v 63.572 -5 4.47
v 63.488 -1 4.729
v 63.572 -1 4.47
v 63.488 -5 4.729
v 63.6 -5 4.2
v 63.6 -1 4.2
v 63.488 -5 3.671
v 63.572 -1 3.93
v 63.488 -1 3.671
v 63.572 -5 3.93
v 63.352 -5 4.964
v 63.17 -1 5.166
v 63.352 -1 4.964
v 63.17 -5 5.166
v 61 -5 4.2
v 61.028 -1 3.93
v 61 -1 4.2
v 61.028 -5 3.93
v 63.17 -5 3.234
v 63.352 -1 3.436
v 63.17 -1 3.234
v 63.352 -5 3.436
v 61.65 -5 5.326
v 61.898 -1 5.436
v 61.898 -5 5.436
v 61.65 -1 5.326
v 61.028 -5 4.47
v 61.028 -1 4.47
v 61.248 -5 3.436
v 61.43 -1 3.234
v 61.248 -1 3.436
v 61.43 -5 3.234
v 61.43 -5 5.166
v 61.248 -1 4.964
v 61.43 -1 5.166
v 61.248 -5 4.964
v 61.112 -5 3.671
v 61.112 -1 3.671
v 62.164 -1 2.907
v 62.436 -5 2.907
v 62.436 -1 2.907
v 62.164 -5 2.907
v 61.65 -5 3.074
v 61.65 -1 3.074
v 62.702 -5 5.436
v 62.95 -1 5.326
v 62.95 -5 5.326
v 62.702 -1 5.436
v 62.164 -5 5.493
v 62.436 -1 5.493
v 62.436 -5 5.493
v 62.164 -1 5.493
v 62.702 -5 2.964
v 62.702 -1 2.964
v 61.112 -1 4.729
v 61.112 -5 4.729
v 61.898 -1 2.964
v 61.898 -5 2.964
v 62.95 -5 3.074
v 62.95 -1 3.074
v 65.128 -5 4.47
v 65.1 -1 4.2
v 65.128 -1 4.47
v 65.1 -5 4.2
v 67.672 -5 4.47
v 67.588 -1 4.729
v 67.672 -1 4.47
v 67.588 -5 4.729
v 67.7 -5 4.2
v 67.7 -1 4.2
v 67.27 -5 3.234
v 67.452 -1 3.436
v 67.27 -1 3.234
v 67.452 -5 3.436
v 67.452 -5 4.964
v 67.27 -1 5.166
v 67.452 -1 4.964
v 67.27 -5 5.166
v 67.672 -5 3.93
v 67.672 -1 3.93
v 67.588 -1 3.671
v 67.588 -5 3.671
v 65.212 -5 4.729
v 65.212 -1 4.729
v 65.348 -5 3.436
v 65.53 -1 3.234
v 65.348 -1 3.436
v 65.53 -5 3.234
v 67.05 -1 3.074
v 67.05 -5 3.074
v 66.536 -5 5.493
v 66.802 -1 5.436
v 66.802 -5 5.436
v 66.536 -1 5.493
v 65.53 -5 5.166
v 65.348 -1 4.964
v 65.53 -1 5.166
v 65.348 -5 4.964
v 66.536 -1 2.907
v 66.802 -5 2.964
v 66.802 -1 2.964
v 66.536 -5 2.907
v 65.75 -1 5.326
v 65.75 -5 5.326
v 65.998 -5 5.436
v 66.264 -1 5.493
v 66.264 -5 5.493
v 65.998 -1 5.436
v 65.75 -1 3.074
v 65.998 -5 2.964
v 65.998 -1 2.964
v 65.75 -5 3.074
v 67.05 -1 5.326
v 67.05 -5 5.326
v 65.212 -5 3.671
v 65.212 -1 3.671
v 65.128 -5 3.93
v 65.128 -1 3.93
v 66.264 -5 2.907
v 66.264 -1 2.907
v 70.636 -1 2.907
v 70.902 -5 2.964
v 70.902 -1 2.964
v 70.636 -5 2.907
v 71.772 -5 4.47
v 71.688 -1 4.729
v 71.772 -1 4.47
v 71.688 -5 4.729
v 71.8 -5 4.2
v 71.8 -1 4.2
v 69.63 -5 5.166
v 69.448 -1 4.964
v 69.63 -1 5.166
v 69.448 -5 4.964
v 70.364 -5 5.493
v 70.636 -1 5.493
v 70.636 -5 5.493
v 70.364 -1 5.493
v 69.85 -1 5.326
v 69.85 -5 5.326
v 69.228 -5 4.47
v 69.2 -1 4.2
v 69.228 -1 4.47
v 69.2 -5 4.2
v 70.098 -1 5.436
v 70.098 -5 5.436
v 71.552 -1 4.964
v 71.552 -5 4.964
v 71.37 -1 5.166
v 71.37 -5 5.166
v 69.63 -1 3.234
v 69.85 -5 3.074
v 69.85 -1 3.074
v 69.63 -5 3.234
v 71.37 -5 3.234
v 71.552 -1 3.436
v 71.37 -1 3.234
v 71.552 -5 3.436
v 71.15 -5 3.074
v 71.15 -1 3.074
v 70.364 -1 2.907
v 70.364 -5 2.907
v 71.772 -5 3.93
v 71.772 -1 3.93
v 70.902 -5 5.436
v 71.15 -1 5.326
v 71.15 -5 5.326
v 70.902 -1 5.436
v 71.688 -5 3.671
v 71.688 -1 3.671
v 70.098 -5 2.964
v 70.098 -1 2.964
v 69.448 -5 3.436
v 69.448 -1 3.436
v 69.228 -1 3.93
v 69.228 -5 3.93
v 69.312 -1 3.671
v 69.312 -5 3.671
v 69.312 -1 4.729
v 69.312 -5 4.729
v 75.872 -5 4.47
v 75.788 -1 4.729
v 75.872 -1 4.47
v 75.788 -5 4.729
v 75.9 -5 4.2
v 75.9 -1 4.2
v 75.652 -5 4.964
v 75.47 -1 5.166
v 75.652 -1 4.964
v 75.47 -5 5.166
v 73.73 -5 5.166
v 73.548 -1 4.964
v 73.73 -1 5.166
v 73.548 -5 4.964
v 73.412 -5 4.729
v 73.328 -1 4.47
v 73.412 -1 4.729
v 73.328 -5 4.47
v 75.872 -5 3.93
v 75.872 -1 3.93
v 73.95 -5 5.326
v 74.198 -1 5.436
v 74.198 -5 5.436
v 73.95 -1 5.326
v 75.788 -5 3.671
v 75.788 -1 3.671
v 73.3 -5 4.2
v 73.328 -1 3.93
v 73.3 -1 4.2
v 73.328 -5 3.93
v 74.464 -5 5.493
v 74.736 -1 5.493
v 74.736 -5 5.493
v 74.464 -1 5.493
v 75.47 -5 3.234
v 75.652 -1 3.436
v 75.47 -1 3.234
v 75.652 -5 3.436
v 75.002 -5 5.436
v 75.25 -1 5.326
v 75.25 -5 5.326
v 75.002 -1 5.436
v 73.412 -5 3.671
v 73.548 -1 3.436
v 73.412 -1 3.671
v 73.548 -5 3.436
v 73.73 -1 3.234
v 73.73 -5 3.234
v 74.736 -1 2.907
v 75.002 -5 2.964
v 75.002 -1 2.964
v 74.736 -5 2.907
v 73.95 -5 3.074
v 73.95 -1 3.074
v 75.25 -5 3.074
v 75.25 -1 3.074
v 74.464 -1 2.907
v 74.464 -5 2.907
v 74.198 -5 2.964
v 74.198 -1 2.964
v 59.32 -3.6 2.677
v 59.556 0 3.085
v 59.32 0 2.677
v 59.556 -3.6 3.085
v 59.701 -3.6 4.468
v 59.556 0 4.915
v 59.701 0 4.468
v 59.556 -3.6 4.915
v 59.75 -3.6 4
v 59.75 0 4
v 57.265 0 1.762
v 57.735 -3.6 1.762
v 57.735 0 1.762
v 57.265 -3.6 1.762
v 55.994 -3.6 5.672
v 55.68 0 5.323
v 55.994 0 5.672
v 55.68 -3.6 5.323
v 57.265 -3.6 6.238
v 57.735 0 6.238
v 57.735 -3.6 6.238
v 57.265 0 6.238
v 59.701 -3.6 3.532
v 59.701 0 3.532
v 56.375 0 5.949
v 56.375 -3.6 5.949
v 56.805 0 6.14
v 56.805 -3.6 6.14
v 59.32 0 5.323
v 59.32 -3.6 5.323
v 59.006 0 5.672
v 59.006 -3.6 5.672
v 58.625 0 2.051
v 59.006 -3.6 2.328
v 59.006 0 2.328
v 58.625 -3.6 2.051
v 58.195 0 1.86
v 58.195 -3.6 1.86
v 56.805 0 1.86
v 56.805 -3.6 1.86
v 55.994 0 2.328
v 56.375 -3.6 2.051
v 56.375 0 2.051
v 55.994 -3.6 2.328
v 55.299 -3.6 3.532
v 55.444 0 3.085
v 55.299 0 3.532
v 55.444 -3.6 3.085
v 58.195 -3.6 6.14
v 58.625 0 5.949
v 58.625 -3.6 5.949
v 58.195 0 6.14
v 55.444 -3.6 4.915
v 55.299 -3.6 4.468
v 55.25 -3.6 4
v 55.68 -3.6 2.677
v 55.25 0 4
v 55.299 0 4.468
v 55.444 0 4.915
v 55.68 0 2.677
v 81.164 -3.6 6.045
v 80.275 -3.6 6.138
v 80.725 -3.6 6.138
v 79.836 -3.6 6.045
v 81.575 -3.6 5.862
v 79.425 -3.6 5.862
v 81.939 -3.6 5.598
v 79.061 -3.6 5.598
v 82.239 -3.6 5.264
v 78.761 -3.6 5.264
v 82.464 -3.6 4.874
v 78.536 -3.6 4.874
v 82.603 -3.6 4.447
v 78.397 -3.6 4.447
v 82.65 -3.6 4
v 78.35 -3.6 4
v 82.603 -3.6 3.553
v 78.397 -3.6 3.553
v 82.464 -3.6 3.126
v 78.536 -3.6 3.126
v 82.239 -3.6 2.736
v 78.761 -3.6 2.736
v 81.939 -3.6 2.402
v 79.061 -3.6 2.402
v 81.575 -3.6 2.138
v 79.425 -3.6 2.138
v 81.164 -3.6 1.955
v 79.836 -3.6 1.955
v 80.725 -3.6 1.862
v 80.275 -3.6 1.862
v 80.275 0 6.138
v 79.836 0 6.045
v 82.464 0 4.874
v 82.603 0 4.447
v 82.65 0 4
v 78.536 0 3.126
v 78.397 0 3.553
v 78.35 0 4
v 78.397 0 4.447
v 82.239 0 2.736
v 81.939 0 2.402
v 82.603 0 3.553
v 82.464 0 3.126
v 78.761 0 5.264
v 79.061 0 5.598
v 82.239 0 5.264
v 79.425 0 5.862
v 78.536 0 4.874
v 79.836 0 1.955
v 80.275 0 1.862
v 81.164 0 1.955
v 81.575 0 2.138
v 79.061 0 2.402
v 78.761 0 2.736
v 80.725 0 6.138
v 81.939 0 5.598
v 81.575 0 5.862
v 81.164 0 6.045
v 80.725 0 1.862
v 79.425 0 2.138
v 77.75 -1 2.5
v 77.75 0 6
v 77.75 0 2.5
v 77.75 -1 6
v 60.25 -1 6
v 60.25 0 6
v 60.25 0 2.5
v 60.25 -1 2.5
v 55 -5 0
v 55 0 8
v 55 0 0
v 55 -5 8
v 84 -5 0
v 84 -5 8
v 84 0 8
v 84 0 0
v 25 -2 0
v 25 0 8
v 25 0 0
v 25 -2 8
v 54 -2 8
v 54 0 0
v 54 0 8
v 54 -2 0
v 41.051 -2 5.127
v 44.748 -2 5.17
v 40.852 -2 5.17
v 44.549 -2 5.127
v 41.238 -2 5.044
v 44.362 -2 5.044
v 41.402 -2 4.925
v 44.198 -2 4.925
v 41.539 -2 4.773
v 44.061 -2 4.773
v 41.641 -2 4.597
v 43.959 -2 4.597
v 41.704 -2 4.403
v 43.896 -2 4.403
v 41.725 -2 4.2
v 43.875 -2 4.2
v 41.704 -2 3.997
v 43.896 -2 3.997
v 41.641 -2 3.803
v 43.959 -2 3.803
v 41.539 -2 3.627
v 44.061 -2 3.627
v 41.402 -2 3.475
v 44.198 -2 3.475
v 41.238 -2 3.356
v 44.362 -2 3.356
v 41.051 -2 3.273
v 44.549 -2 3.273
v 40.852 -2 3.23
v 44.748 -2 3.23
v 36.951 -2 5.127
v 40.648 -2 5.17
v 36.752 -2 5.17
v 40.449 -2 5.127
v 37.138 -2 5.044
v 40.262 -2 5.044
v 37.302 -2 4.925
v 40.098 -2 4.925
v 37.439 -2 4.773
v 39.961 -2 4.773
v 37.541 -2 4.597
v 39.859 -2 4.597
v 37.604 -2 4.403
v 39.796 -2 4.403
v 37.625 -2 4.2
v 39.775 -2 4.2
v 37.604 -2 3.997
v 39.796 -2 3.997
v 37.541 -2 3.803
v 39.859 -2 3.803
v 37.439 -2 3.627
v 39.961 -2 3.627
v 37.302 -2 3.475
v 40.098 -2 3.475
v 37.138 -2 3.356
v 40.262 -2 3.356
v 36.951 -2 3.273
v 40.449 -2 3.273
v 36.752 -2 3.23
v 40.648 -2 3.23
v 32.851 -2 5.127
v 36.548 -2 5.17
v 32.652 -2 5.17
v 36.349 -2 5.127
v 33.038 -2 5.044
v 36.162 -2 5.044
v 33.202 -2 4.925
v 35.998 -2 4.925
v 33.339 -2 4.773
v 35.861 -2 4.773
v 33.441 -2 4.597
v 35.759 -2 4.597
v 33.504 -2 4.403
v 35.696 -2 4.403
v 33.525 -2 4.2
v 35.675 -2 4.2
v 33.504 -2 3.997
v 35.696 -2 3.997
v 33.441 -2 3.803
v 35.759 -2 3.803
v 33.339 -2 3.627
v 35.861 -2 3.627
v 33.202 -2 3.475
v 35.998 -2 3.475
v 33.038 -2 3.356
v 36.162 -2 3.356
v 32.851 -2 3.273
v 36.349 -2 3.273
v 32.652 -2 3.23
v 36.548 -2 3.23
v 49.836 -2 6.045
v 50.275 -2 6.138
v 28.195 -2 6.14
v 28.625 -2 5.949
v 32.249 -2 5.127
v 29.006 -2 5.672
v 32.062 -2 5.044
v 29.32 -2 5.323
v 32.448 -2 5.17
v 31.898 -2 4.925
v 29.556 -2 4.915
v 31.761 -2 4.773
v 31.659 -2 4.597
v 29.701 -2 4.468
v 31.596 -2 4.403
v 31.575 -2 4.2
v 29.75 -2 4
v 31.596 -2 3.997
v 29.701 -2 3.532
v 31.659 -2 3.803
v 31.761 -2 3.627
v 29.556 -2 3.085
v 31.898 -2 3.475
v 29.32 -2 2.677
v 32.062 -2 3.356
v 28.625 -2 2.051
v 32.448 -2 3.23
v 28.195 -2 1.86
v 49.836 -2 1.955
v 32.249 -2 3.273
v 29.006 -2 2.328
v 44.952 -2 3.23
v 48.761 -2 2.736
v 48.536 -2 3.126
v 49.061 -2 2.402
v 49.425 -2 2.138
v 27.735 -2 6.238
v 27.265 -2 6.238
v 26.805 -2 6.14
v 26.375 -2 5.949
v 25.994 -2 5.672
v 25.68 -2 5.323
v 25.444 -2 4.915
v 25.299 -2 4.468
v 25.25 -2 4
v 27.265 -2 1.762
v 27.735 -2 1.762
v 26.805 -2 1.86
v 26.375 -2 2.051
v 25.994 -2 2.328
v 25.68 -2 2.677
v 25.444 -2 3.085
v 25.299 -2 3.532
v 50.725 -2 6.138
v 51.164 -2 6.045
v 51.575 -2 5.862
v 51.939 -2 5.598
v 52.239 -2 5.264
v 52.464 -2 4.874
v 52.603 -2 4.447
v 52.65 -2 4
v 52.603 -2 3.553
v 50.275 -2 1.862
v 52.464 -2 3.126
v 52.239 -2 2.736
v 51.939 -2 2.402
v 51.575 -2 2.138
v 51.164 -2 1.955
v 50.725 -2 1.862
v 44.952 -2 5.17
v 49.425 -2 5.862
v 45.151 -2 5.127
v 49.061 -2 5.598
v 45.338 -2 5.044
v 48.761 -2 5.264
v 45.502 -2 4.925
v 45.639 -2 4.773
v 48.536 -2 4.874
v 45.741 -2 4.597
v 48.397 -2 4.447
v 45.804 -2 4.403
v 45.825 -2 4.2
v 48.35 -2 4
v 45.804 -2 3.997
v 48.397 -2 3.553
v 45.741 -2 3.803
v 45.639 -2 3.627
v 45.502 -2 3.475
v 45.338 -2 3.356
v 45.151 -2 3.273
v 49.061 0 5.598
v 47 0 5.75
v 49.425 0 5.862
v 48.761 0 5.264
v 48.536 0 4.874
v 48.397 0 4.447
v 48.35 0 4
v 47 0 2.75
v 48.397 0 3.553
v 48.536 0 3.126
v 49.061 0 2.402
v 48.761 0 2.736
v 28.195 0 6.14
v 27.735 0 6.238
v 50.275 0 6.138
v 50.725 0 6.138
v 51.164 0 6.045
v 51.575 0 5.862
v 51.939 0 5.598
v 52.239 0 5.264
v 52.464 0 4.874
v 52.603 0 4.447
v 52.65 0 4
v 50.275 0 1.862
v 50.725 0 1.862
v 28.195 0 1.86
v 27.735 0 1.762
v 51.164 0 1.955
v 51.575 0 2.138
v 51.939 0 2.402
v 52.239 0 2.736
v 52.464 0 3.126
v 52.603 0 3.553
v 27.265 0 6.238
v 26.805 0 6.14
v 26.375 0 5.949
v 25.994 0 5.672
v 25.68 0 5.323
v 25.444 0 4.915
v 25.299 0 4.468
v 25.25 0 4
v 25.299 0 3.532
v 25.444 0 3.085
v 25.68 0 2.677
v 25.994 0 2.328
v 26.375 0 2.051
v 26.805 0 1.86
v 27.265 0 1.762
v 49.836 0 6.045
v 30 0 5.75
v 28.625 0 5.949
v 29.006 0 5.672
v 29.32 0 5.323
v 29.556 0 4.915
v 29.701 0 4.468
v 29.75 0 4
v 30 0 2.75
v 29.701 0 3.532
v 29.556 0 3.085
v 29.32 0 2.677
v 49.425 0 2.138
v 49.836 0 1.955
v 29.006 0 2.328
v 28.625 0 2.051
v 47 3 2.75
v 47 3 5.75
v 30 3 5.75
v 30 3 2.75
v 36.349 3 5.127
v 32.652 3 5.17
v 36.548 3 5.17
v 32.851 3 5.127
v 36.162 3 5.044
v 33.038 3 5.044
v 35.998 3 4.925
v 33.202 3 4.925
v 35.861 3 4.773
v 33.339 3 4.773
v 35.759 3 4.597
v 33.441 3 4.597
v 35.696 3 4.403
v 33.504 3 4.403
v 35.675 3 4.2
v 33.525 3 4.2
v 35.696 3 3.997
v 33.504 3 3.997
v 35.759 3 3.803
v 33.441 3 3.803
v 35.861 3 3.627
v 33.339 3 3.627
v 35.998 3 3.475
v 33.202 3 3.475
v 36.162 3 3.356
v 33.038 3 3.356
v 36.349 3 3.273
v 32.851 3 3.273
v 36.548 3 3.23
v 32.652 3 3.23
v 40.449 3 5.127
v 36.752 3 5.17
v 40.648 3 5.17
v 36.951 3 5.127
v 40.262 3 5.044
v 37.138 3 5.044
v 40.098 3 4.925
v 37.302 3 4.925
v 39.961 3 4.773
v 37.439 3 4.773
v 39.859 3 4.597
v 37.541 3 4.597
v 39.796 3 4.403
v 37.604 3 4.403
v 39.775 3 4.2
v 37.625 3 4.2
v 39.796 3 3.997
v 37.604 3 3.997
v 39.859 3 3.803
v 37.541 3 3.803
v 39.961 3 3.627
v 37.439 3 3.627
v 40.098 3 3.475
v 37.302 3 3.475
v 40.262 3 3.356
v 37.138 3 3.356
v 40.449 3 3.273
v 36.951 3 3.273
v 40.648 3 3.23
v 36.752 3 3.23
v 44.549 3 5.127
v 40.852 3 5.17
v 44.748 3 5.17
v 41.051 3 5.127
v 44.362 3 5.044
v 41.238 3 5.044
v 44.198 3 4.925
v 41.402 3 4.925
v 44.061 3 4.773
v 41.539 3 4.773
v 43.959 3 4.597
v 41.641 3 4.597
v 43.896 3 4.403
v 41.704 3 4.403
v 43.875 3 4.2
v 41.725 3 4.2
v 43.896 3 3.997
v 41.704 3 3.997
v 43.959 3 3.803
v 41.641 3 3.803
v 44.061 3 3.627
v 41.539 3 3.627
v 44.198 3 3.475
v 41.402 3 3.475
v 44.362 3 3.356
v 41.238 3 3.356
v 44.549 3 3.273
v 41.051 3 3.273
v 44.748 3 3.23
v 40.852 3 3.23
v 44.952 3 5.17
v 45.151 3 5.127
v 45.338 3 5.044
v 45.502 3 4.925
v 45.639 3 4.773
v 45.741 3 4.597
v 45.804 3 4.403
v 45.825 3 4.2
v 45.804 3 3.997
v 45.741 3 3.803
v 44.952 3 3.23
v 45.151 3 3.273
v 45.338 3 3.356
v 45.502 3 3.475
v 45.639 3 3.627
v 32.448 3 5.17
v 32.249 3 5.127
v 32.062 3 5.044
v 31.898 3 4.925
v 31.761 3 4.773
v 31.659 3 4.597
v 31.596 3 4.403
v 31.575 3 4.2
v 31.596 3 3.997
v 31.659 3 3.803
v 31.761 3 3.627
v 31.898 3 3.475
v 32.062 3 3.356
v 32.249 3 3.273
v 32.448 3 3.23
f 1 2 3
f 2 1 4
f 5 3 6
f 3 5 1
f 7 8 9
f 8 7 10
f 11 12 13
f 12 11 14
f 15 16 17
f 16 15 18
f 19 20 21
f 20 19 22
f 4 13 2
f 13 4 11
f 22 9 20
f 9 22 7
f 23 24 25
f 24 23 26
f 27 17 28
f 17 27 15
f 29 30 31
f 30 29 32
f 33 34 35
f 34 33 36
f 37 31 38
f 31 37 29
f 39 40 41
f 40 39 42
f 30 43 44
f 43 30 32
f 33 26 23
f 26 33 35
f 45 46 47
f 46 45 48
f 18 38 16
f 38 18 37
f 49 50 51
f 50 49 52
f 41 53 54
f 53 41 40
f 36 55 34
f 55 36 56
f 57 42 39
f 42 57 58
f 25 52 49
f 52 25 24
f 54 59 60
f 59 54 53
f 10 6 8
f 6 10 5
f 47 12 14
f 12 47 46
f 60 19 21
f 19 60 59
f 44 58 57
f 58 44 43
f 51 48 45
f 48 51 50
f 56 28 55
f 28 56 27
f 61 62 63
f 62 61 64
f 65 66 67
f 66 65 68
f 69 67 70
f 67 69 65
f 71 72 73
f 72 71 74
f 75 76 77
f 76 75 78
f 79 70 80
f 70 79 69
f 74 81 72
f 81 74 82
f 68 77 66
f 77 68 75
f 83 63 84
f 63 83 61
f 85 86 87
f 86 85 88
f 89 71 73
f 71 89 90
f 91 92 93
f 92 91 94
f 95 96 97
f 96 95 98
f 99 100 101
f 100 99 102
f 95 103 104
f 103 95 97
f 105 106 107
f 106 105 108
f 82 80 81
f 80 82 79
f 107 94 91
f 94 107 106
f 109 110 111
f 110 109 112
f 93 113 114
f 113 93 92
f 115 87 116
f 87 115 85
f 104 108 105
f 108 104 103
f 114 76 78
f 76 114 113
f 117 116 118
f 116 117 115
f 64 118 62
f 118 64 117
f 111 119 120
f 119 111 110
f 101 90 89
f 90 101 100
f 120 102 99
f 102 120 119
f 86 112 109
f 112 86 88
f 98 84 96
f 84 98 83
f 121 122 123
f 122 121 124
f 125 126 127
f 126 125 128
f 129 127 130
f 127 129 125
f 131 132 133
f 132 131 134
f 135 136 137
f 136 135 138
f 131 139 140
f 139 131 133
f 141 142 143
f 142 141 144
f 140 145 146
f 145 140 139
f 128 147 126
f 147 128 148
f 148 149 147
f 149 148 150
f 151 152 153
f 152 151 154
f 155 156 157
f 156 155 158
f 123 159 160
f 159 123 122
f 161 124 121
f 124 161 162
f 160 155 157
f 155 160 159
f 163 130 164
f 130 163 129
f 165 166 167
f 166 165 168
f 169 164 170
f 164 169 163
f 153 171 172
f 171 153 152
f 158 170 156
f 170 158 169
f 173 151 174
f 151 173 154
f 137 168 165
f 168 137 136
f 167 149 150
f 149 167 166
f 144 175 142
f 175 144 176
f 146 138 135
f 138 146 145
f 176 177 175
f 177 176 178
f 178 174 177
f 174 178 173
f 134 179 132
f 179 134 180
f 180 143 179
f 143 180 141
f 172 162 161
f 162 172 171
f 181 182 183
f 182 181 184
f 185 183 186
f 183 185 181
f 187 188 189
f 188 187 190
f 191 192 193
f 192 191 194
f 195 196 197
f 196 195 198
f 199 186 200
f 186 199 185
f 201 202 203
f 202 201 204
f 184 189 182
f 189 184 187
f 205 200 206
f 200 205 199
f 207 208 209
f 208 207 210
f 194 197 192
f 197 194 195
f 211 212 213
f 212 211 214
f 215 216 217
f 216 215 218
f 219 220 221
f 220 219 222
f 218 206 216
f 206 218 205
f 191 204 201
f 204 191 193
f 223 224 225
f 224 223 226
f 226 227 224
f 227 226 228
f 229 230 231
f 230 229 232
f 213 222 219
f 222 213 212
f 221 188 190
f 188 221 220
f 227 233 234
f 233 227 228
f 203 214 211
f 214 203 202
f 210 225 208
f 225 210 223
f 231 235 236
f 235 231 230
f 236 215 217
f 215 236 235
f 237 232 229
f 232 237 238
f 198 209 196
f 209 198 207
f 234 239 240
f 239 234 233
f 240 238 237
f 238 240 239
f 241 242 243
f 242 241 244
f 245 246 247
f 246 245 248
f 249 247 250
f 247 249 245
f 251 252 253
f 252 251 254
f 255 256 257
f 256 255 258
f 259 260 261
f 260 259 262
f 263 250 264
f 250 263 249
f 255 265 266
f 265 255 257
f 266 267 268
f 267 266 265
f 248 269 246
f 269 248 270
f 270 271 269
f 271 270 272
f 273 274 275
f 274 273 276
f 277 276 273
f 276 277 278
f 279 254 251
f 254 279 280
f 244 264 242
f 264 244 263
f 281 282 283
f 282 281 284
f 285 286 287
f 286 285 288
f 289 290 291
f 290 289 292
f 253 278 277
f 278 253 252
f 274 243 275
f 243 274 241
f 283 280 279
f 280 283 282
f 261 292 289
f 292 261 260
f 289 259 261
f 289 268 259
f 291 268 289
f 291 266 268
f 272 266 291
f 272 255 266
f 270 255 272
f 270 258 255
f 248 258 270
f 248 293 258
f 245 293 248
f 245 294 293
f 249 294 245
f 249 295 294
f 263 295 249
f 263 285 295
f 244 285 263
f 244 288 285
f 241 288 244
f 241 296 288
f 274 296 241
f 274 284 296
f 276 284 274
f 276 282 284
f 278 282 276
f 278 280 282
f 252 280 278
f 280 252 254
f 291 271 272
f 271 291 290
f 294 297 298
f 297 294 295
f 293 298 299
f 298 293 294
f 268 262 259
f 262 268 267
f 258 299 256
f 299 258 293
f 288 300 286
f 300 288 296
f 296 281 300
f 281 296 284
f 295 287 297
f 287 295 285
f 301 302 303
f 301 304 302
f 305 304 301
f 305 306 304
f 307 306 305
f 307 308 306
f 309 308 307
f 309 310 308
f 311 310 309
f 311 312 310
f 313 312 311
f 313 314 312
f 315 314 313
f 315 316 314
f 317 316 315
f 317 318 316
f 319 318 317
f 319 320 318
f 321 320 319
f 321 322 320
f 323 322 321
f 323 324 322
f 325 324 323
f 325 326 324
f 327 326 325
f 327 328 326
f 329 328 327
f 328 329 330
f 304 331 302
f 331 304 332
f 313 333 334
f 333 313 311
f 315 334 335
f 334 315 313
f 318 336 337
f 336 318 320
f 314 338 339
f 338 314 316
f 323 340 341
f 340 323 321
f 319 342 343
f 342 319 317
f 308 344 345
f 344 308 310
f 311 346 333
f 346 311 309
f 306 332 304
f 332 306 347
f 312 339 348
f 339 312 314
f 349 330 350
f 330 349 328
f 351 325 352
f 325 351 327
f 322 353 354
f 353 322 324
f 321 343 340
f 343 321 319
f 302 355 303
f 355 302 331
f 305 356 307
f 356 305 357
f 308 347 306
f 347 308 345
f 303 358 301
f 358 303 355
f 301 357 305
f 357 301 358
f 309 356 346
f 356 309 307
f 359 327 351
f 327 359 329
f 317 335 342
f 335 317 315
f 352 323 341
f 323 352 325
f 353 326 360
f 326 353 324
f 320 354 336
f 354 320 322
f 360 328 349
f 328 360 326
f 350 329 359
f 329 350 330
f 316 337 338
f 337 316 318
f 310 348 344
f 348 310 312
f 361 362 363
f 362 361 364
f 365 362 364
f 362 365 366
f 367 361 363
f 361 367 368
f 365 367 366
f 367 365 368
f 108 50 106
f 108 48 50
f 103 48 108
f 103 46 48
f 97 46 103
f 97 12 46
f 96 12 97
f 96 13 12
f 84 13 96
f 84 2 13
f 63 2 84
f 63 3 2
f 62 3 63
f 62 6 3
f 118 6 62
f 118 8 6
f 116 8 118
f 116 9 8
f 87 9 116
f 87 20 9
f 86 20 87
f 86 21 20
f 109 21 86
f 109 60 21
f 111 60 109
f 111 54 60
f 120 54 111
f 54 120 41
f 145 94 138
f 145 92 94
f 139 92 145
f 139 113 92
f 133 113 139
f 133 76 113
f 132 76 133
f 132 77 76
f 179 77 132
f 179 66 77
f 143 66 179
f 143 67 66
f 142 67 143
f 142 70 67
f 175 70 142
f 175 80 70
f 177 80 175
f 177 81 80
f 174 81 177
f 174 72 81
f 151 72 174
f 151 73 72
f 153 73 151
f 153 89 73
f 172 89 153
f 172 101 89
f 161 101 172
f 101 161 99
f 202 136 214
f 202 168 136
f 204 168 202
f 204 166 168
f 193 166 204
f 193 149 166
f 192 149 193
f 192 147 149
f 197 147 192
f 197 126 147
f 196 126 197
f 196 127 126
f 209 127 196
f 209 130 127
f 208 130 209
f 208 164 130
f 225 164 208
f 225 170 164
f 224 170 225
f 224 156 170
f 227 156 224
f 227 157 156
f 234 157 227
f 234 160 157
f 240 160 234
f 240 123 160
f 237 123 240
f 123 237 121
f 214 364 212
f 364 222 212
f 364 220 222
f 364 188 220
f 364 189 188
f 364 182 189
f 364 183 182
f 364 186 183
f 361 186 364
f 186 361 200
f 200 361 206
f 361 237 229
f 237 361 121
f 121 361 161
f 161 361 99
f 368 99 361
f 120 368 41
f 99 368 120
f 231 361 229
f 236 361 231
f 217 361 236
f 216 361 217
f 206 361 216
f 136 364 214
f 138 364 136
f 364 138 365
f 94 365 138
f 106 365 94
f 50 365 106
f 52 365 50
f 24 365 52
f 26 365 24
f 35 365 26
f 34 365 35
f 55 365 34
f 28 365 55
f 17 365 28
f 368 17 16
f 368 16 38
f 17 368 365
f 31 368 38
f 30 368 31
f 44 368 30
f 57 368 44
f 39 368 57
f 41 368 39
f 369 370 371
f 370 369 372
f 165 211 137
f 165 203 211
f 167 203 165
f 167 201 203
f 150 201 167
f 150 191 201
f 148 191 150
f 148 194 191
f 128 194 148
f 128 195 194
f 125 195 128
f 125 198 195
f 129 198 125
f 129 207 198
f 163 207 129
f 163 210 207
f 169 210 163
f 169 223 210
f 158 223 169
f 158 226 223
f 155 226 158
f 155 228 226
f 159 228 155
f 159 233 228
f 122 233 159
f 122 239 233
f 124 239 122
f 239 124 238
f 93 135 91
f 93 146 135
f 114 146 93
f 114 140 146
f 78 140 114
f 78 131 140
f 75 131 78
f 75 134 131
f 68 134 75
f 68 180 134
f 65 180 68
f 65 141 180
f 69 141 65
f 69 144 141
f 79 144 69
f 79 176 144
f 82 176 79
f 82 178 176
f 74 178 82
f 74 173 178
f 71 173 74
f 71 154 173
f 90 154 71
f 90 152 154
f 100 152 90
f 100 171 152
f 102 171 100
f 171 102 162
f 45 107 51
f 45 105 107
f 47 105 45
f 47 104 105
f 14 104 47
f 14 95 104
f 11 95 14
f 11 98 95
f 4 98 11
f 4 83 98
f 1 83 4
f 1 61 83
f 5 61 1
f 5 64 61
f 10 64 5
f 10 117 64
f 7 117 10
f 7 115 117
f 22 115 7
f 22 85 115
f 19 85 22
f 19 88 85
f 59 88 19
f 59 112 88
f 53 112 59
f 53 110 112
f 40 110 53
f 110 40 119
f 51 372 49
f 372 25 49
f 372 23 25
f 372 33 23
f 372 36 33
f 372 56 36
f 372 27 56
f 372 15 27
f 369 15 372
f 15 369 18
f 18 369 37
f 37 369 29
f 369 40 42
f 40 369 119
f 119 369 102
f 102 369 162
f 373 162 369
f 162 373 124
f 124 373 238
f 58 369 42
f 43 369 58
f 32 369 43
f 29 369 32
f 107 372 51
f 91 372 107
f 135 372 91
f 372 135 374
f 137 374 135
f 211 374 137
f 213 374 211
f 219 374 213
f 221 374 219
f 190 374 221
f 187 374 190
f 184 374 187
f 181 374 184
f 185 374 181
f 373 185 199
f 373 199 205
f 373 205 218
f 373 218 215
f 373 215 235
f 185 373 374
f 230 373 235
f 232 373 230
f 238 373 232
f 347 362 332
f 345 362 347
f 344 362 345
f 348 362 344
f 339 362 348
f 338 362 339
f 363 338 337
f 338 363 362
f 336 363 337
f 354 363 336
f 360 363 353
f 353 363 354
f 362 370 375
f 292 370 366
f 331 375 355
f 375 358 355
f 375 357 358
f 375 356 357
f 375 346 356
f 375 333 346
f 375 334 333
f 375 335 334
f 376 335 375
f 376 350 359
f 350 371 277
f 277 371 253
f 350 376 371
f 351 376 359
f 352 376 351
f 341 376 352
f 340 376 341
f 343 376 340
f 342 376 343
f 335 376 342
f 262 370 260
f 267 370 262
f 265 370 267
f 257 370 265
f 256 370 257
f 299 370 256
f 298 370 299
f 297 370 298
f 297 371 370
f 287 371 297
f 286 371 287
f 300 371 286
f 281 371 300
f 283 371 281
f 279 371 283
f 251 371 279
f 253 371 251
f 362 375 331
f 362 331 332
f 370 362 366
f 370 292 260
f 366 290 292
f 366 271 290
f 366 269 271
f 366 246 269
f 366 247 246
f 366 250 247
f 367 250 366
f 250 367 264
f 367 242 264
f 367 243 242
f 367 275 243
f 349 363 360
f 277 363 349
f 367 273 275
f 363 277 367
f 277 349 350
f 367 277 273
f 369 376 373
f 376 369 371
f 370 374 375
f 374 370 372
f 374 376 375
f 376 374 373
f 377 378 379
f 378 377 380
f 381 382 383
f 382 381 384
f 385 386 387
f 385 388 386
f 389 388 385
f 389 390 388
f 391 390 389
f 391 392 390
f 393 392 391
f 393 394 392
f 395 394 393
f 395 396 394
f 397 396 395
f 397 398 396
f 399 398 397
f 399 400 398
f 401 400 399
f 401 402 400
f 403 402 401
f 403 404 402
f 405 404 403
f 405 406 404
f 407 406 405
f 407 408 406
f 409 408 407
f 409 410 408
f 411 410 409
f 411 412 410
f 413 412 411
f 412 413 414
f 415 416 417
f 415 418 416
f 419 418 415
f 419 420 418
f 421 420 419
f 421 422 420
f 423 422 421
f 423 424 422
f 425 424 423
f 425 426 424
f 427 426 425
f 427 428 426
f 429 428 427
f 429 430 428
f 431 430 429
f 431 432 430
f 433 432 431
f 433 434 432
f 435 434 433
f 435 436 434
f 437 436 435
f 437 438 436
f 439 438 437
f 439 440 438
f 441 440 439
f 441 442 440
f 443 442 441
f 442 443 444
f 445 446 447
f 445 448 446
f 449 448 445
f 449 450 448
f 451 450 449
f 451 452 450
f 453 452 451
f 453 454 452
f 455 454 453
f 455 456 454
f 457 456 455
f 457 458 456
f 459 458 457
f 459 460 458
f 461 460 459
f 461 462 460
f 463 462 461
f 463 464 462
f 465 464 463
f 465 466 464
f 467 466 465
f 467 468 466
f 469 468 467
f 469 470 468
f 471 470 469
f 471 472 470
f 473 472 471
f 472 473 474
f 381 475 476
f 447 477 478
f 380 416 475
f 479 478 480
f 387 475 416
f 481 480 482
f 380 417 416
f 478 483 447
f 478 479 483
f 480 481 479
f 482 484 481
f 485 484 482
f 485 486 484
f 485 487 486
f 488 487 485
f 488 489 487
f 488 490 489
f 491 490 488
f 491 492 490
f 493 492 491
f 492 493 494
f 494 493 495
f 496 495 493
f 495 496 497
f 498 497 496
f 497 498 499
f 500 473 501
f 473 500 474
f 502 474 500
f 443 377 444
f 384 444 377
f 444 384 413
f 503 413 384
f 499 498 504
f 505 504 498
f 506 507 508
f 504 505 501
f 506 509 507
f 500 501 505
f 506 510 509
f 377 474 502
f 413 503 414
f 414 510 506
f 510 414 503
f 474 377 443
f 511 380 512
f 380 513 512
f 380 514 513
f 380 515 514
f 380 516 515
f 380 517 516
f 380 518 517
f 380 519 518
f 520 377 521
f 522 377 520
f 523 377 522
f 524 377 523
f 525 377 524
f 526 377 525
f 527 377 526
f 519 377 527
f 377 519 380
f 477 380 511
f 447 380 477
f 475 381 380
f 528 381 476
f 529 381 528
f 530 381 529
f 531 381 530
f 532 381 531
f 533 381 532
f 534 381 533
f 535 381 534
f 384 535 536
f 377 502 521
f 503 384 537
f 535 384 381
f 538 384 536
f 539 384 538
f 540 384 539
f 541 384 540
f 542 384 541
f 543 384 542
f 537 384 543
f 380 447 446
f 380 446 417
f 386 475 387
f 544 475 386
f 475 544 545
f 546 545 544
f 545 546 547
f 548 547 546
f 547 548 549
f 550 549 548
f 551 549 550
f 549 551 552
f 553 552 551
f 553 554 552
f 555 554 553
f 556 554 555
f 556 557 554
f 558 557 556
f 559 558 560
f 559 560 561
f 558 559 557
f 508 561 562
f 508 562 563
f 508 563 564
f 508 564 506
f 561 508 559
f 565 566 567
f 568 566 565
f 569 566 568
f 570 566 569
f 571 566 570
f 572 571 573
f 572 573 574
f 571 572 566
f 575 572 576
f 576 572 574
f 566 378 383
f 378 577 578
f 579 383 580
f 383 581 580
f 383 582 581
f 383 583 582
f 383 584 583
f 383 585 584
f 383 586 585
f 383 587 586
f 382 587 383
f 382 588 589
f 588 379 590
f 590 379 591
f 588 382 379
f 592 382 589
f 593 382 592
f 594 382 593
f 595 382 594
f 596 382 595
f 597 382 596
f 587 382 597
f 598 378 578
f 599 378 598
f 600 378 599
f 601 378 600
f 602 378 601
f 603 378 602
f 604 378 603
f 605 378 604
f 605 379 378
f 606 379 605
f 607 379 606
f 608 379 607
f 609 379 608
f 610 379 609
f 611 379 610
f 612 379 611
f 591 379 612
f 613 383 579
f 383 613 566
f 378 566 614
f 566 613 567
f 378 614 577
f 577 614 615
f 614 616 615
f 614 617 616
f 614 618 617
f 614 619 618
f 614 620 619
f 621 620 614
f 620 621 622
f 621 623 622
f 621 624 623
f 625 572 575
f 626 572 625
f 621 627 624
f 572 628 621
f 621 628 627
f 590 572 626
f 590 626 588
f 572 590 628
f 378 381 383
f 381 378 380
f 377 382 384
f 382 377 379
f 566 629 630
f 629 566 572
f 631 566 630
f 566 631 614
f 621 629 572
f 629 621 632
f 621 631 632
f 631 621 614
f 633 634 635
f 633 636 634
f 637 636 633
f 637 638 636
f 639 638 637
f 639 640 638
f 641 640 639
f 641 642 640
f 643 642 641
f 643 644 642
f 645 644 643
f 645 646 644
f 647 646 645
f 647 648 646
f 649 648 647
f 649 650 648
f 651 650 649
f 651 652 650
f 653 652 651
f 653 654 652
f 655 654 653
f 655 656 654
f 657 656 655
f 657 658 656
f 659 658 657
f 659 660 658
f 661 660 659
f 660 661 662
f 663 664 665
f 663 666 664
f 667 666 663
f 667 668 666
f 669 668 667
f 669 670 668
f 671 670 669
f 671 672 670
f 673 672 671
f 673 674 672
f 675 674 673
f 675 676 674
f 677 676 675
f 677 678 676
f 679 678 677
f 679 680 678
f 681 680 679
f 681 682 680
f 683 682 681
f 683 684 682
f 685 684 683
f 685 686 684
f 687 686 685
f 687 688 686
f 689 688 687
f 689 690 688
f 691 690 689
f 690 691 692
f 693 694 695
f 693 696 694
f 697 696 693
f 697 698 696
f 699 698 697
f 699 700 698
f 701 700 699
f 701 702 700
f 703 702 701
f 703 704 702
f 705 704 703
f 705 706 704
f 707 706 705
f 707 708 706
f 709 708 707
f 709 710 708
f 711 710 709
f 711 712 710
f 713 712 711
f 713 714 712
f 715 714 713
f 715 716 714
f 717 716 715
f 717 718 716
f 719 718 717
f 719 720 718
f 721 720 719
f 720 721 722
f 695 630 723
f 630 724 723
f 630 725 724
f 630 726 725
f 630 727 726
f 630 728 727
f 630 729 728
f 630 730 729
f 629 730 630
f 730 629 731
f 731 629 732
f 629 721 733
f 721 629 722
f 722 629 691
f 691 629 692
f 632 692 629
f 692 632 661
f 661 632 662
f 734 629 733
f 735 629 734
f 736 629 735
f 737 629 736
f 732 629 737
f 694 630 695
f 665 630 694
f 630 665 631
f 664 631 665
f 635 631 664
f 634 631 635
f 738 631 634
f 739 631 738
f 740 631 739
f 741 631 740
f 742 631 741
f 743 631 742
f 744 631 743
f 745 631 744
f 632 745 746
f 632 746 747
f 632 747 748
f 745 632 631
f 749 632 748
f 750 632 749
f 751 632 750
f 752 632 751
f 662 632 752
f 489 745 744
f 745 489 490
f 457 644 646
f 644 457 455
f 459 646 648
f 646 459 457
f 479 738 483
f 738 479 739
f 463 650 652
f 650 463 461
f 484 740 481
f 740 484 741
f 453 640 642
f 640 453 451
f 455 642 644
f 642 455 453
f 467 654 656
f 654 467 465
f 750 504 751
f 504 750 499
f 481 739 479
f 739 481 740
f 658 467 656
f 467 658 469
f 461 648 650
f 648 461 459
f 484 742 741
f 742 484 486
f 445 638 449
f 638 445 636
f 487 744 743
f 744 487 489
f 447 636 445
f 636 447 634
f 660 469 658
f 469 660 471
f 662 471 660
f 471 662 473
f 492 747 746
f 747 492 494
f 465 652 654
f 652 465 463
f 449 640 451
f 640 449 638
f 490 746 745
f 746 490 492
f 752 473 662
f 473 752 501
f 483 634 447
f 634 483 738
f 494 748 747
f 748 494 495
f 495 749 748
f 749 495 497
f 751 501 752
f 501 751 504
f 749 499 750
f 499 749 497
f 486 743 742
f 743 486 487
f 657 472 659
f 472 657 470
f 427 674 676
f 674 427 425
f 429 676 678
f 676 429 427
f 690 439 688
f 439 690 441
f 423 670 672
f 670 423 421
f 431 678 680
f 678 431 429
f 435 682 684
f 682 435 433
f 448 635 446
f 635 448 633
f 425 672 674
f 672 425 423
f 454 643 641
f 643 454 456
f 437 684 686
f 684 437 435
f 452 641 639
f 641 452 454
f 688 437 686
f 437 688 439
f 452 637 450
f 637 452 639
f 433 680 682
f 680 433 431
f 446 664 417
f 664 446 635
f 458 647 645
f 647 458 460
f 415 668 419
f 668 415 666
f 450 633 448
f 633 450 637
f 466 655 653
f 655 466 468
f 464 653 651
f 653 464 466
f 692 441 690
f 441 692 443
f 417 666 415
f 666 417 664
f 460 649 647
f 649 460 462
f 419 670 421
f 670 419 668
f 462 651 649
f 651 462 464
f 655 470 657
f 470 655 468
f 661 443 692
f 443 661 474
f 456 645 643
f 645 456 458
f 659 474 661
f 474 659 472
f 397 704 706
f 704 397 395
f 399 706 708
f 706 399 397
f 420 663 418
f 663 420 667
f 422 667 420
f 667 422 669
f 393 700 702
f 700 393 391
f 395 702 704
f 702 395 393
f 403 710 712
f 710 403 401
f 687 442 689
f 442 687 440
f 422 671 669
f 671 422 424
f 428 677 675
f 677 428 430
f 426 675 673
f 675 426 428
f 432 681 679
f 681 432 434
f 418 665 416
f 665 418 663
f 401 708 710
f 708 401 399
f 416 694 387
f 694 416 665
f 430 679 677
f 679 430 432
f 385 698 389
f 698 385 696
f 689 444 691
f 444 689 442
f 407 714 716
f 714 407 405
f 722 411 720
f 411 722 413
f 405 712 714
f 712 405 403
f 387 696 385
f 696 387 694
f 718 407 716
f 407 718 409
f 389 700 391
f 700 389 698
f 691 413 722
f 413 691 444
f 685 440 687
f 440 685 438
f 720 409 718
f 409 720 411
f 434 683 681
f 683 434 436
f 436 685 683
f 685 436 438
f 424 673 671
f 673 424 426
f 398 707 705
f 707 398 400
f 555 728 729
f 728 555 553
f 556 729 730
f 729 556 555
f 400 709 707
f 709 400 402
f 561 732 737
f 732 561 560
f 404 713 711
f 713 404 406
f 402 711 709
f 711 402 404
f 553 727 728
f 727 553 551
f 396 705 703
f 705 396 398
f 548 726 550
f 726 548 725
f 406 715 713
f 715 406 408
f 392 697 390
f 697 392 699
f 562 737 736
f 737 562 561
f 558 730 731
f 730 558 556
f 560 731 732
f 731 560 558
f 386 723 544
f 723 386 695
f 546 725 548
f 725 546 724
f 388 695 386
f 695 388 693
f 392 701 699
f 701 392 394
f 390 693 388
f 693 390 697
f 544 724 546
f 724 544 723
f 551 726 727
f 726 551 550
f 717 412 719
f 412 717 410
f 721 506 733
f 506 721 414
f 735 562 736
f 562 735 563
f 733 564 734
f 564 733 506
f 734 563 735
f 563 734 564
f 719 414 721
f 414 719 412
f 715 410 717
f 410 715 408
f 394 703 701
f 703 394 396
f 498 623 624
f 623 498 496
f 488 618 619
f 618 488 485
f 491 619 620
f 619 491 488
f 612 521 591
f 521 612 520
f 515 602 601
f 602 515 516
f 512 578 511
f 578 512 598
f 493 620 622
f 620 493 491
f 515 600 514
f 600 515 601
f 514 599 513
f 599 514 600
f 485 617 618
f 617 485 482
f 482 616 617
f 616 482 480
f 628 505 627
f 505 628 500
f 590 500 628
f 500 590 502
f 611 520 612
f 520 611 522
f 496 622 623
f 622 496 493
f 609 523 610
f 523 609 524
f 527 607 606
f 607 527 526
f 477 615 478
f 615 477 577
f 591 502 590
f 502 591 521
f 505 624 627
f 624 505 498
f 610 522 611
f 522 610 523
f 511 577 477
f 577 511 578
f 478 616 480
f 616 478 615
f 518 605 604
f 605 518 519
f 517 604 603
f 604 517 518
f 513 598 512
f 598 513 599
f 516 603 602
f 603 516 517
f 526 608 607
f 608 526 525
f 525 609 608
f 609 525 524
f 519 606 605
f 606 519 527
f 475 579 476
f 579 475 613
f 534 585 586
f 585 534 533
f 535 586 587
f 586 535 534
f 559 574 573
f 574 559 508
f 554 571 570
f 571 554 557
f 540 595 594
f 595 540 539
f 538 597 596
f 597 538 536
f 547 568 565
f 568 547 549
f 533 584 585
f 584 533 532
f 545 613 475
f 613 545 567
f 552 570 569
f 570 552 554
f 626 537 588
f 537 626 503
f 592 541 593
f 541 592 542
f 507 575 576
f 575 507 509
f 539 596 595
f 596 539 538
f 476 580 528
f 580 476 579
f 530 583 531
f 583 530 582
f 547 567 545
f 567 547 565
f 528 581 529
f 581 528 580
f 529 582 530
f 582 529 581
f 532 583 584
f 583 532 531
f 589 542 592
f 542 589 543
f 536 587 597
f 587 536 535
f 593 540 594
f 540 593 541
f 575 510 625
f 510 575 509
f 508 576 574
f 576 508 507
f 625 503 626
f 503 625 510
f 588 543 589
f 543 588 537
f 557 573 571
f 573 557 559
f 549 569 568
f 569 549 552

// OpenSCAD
/*

__________ ____ ___  _____________  __.___.____    .____     
\______   \    |   \/   _____/    |/ _|   |    |   |    |    
 |    |  _/    |   /\_____  \|      < |   |    |   |    |    
 |    |   \    |  / /        \    |  \|   |    |___|    |___ 
 |_______ /______/ /_______  / ___|__ \___|_______ \_______ \
                              \/     \/           \/       \/
                                                  \/       \/                  

*/
/*                      
Buskill USB-A Magnetic breakaway Shell Assembly     
GNU General Public License v3.0 
Author: Melanie Allen
*/



/*
Description

BusKill is a Dead Man Switch triggered when a magnetic breakaway is tripped, severing a USB connection. This design is for USB-A.

The user will have a USB, a USB extension cable, and the magnetic breakaway. 

The "release" is connected to a USB extension cord that terminates with the female USB port that receives a USB.  It contains 4 pogo pins directly soldered to the female usb port and 1 oval magnet. It separates from the release when the cord is pulled. (red)

The "breakaway" is connected to the cord that terminates with the male USB and inserts the computer. It contains 4 pins terminating in pogo receptors and 1 round  magnet and a plastic case. (pink)

When the magnets on the breakaway and release connect, the pogo pins and pogo receptors must meet and establish the USB connection.

The breakaway and release plugs must be designed asymmetrically to prevent the connection from happening the wrong way. 

In this version I have borrowed these mangets and pogo receptors from the Supplier verison of the BusKill cable.

docs.buskill.in
buskill.in
*/



//magnet variables

//release magnet

magnet_position_x=3;
magnet_position_z=18.1;
magnet_position_y=4;
magnet_distance=23;

//breakaway magnet

//USB_port variables
u_h = 14.2;
u_w = 13.5;
u_d = 5.7;

//pogo variables

pogo_length=7.6;
pogo_diameter=2.6; //+.3 +.2 +.2 +.2
pogo_distance=1.5; //distance between pins 
shift=2.5; //distance from pins 
shift2=2; //distance from top

//receptor variables

//breakaway variables
i_h = 29; //x
i_w = 8; //z
i_d = 20; //y

//release variables
i_l_h =i_h; //x
i_l_w = i_w; //z
i_l_d = 20; //y

//pogo pins

module pogos(){
    translate([-.7,-.1,4.2]){
        translate([shift,0,0])rotate ([90,0,0])cylinder($fn = 30, $fa = 30, $fs = 2, h=pogo_length, r1=pogo_diameter/2, r2=pogo_diameter/2, center = true);
    translate([pogo_distance+pogo_diameter+shift,0,0])rotate ([90,0,0])cylinder($fn = 30, $fa = 30, $fs = 1.8, h=pogo_length, r1=pogo_diameter/2, r2=pogo_diameter/2, center = true);
            translate([(pogo_distance+pogo_diameter)*2+shift,0,0])rotate ([90,0,0])cylinder($fn = 30, $fa = 30, $fs = 2, h=pogo_length, r1=pogo_diameter/2, r2=pogo_diameter/2, center = true);
    translate([(pogo_distance+pogo_diameter)*3+shift,0,0])rotate ([90,0,0])cylinder($fn = 30, $fa = 30, $fs = 1.8, h=pogo_length, r1=pogo_diameter/2, r2=pogo_diameter/2, center = true);
}
}

//pogos();

size_difference = .75;

module pogo_recs(){
    translate([-.7,-.1,4.2]){
        translate([shift,0,0])rotate ([90,0,0])scale(size_difference)cylinder($fn = 30, $fa = 30, $fs = 2, h=pogo_length, r1=pogo_diameter/2, r2=pogo_diameter/2, center = true);
    translate([pogo_distance+pogo_diameter+shift,0,0])rotate ([90,0,0])scale(size_difference)cylinder($fn = 30, $fa = 30, $fs = 1.8, h=pogo_length, r1=pogo_diameter/2, r2=pogo_diameter/2, center = true);
            translate([(pogo_distance+pogo_diameter)*2+shift,0,0])rotate ([90,0,0])scale(size_difference)cylinder($fn = 30, $fa = 30, $fs = 2, h=pogo_length, r1=pogo_diameter/2, r2=pogo_diameter/2, center = true);
    translate([(pogo_distance+pogo_diameter)*3+shift,0,0])rotate ([90,0,0])scale(size_difference)cylinder($fn = 30, $fa = 30, $fs = 1.8, h=pogo_length, r1=pogo_diameter/2, r2=pogo_diameter/2, center = true);
}
}

//pogo_recs();

module usb(){
    color("grey",.1)translate([-1,3.8,0])cube(size = [u_h,u_w,u_d],center=false);
}

//usb();
//pogo receptors

module recs(){

}

//recs();

magnet_tolerance= .1;

module magnet(){
color("grey") rotate ([90,0,0])translate([magnet_position_x,magnet_position_y,magnet_position_z])cylinder($fn = 30, $fa = 30, $fs = 2, h=4, r1=2.15+magnet_tolerance, r2=2.15+magnet_tolerance, center = true);
    
   color("grey") rotate ([90,0,0])translate([magnet_position_x+magnet_distance,magnet_position_y,magnet_position_z])cylinder($fn = 30, $fa = 30, $fs = 2, h=4, r1=2.15, r2=2.15, center = true);
    

}

//magnet();

//

x=.75;
y=.5;
module void(){
    
usb();
    translate([x,y,0])pogos();
translate([-5.5,17,0])magnet();
}

// void();


module void2(){
translate([30+x,y,0])pogo_recs();
translate([24.5,17,0])magnet();
}
//void2();

/* * Blocks * */

    module release_block(){
       
    color("Red",.55)
 rotate([90,0,0]){
{
                cube(size = [i_l_h, i_l_w, i_l_d], center = false);
            }
        } 
    } 
 
   // release_block();
   module assemble3(){ 
    difference(){
       release_block();
    translate([5,-i_l_d+3,0])void();


}

 //translate([5,-i_l_d+3,0])void();
}

//outie block

pogo_house_x = 17;
pogo_house_y = 3;
pogo_house_z =3;
pogo_house_pos_x= 30;
pogo_house_pos_y= 0;
pogo_house_pos_z= 2.75;


block_distance=25;    
        module breakaway_block(){
    color("Pink",.55)
 rotate([90,0,0]){
            translate([block_distance,0,0]){
                cube(size = [i_h, i_w, 2], center = false);
            }
        } 
    translate([pogo_house_pos_x,pogo_house_pos_y,pogo_house_pos_z])cube(size = [pogo_house_x,pogo_house_y,pogo_house_z], center=false);
        } 
  //breakaway_block();
        
     
 
 //innie block

innie_tolerance=.5;         
        
 block_distance2=25;    
        module breakaway_block2(){
    color("purple",.55)
 translate([25,0,0])rotate([90,0,0]){
            translate([block_distance2,0,0]){
                cube(size = [i_h, i_w, 5], center = false);
            }
        } 
        }        
//breakaway_block2();
     
 pogo_house2_pos_x= pogo_house_pos_x+25.5;
 pogo_house2_pos_y= pogo_house_pos_y-1;
 pogo_house2_pos_z= pogo_house_pos_z;  
        
 module void3(){
     translate([pogo_house2_pos_x-(innie_tolerance*.5),pogo_house2_pos_y,pogo_house2_pos_z-(innie_tolerance*.5)])cube(size = [pogo_house_x+innie_tolerance,pogo_house_y+innie_tolerance,pogo_house_z+innie_tolerance], center=false);
     translate([55.5,-2.6,0])pogos();
     translate([49.5,16.5,0])magnet();
     }    
        
//void3();    
 
 module assemble2(){
 difference(){
 breakaway_block2();
 void3();
 }    
 }
 translate([5,0,0])assemble2();
    
module assemble(){
translate([0,0,0])difference(){
      breakaway_block();
    void2();
   
}
}

assemble();   
